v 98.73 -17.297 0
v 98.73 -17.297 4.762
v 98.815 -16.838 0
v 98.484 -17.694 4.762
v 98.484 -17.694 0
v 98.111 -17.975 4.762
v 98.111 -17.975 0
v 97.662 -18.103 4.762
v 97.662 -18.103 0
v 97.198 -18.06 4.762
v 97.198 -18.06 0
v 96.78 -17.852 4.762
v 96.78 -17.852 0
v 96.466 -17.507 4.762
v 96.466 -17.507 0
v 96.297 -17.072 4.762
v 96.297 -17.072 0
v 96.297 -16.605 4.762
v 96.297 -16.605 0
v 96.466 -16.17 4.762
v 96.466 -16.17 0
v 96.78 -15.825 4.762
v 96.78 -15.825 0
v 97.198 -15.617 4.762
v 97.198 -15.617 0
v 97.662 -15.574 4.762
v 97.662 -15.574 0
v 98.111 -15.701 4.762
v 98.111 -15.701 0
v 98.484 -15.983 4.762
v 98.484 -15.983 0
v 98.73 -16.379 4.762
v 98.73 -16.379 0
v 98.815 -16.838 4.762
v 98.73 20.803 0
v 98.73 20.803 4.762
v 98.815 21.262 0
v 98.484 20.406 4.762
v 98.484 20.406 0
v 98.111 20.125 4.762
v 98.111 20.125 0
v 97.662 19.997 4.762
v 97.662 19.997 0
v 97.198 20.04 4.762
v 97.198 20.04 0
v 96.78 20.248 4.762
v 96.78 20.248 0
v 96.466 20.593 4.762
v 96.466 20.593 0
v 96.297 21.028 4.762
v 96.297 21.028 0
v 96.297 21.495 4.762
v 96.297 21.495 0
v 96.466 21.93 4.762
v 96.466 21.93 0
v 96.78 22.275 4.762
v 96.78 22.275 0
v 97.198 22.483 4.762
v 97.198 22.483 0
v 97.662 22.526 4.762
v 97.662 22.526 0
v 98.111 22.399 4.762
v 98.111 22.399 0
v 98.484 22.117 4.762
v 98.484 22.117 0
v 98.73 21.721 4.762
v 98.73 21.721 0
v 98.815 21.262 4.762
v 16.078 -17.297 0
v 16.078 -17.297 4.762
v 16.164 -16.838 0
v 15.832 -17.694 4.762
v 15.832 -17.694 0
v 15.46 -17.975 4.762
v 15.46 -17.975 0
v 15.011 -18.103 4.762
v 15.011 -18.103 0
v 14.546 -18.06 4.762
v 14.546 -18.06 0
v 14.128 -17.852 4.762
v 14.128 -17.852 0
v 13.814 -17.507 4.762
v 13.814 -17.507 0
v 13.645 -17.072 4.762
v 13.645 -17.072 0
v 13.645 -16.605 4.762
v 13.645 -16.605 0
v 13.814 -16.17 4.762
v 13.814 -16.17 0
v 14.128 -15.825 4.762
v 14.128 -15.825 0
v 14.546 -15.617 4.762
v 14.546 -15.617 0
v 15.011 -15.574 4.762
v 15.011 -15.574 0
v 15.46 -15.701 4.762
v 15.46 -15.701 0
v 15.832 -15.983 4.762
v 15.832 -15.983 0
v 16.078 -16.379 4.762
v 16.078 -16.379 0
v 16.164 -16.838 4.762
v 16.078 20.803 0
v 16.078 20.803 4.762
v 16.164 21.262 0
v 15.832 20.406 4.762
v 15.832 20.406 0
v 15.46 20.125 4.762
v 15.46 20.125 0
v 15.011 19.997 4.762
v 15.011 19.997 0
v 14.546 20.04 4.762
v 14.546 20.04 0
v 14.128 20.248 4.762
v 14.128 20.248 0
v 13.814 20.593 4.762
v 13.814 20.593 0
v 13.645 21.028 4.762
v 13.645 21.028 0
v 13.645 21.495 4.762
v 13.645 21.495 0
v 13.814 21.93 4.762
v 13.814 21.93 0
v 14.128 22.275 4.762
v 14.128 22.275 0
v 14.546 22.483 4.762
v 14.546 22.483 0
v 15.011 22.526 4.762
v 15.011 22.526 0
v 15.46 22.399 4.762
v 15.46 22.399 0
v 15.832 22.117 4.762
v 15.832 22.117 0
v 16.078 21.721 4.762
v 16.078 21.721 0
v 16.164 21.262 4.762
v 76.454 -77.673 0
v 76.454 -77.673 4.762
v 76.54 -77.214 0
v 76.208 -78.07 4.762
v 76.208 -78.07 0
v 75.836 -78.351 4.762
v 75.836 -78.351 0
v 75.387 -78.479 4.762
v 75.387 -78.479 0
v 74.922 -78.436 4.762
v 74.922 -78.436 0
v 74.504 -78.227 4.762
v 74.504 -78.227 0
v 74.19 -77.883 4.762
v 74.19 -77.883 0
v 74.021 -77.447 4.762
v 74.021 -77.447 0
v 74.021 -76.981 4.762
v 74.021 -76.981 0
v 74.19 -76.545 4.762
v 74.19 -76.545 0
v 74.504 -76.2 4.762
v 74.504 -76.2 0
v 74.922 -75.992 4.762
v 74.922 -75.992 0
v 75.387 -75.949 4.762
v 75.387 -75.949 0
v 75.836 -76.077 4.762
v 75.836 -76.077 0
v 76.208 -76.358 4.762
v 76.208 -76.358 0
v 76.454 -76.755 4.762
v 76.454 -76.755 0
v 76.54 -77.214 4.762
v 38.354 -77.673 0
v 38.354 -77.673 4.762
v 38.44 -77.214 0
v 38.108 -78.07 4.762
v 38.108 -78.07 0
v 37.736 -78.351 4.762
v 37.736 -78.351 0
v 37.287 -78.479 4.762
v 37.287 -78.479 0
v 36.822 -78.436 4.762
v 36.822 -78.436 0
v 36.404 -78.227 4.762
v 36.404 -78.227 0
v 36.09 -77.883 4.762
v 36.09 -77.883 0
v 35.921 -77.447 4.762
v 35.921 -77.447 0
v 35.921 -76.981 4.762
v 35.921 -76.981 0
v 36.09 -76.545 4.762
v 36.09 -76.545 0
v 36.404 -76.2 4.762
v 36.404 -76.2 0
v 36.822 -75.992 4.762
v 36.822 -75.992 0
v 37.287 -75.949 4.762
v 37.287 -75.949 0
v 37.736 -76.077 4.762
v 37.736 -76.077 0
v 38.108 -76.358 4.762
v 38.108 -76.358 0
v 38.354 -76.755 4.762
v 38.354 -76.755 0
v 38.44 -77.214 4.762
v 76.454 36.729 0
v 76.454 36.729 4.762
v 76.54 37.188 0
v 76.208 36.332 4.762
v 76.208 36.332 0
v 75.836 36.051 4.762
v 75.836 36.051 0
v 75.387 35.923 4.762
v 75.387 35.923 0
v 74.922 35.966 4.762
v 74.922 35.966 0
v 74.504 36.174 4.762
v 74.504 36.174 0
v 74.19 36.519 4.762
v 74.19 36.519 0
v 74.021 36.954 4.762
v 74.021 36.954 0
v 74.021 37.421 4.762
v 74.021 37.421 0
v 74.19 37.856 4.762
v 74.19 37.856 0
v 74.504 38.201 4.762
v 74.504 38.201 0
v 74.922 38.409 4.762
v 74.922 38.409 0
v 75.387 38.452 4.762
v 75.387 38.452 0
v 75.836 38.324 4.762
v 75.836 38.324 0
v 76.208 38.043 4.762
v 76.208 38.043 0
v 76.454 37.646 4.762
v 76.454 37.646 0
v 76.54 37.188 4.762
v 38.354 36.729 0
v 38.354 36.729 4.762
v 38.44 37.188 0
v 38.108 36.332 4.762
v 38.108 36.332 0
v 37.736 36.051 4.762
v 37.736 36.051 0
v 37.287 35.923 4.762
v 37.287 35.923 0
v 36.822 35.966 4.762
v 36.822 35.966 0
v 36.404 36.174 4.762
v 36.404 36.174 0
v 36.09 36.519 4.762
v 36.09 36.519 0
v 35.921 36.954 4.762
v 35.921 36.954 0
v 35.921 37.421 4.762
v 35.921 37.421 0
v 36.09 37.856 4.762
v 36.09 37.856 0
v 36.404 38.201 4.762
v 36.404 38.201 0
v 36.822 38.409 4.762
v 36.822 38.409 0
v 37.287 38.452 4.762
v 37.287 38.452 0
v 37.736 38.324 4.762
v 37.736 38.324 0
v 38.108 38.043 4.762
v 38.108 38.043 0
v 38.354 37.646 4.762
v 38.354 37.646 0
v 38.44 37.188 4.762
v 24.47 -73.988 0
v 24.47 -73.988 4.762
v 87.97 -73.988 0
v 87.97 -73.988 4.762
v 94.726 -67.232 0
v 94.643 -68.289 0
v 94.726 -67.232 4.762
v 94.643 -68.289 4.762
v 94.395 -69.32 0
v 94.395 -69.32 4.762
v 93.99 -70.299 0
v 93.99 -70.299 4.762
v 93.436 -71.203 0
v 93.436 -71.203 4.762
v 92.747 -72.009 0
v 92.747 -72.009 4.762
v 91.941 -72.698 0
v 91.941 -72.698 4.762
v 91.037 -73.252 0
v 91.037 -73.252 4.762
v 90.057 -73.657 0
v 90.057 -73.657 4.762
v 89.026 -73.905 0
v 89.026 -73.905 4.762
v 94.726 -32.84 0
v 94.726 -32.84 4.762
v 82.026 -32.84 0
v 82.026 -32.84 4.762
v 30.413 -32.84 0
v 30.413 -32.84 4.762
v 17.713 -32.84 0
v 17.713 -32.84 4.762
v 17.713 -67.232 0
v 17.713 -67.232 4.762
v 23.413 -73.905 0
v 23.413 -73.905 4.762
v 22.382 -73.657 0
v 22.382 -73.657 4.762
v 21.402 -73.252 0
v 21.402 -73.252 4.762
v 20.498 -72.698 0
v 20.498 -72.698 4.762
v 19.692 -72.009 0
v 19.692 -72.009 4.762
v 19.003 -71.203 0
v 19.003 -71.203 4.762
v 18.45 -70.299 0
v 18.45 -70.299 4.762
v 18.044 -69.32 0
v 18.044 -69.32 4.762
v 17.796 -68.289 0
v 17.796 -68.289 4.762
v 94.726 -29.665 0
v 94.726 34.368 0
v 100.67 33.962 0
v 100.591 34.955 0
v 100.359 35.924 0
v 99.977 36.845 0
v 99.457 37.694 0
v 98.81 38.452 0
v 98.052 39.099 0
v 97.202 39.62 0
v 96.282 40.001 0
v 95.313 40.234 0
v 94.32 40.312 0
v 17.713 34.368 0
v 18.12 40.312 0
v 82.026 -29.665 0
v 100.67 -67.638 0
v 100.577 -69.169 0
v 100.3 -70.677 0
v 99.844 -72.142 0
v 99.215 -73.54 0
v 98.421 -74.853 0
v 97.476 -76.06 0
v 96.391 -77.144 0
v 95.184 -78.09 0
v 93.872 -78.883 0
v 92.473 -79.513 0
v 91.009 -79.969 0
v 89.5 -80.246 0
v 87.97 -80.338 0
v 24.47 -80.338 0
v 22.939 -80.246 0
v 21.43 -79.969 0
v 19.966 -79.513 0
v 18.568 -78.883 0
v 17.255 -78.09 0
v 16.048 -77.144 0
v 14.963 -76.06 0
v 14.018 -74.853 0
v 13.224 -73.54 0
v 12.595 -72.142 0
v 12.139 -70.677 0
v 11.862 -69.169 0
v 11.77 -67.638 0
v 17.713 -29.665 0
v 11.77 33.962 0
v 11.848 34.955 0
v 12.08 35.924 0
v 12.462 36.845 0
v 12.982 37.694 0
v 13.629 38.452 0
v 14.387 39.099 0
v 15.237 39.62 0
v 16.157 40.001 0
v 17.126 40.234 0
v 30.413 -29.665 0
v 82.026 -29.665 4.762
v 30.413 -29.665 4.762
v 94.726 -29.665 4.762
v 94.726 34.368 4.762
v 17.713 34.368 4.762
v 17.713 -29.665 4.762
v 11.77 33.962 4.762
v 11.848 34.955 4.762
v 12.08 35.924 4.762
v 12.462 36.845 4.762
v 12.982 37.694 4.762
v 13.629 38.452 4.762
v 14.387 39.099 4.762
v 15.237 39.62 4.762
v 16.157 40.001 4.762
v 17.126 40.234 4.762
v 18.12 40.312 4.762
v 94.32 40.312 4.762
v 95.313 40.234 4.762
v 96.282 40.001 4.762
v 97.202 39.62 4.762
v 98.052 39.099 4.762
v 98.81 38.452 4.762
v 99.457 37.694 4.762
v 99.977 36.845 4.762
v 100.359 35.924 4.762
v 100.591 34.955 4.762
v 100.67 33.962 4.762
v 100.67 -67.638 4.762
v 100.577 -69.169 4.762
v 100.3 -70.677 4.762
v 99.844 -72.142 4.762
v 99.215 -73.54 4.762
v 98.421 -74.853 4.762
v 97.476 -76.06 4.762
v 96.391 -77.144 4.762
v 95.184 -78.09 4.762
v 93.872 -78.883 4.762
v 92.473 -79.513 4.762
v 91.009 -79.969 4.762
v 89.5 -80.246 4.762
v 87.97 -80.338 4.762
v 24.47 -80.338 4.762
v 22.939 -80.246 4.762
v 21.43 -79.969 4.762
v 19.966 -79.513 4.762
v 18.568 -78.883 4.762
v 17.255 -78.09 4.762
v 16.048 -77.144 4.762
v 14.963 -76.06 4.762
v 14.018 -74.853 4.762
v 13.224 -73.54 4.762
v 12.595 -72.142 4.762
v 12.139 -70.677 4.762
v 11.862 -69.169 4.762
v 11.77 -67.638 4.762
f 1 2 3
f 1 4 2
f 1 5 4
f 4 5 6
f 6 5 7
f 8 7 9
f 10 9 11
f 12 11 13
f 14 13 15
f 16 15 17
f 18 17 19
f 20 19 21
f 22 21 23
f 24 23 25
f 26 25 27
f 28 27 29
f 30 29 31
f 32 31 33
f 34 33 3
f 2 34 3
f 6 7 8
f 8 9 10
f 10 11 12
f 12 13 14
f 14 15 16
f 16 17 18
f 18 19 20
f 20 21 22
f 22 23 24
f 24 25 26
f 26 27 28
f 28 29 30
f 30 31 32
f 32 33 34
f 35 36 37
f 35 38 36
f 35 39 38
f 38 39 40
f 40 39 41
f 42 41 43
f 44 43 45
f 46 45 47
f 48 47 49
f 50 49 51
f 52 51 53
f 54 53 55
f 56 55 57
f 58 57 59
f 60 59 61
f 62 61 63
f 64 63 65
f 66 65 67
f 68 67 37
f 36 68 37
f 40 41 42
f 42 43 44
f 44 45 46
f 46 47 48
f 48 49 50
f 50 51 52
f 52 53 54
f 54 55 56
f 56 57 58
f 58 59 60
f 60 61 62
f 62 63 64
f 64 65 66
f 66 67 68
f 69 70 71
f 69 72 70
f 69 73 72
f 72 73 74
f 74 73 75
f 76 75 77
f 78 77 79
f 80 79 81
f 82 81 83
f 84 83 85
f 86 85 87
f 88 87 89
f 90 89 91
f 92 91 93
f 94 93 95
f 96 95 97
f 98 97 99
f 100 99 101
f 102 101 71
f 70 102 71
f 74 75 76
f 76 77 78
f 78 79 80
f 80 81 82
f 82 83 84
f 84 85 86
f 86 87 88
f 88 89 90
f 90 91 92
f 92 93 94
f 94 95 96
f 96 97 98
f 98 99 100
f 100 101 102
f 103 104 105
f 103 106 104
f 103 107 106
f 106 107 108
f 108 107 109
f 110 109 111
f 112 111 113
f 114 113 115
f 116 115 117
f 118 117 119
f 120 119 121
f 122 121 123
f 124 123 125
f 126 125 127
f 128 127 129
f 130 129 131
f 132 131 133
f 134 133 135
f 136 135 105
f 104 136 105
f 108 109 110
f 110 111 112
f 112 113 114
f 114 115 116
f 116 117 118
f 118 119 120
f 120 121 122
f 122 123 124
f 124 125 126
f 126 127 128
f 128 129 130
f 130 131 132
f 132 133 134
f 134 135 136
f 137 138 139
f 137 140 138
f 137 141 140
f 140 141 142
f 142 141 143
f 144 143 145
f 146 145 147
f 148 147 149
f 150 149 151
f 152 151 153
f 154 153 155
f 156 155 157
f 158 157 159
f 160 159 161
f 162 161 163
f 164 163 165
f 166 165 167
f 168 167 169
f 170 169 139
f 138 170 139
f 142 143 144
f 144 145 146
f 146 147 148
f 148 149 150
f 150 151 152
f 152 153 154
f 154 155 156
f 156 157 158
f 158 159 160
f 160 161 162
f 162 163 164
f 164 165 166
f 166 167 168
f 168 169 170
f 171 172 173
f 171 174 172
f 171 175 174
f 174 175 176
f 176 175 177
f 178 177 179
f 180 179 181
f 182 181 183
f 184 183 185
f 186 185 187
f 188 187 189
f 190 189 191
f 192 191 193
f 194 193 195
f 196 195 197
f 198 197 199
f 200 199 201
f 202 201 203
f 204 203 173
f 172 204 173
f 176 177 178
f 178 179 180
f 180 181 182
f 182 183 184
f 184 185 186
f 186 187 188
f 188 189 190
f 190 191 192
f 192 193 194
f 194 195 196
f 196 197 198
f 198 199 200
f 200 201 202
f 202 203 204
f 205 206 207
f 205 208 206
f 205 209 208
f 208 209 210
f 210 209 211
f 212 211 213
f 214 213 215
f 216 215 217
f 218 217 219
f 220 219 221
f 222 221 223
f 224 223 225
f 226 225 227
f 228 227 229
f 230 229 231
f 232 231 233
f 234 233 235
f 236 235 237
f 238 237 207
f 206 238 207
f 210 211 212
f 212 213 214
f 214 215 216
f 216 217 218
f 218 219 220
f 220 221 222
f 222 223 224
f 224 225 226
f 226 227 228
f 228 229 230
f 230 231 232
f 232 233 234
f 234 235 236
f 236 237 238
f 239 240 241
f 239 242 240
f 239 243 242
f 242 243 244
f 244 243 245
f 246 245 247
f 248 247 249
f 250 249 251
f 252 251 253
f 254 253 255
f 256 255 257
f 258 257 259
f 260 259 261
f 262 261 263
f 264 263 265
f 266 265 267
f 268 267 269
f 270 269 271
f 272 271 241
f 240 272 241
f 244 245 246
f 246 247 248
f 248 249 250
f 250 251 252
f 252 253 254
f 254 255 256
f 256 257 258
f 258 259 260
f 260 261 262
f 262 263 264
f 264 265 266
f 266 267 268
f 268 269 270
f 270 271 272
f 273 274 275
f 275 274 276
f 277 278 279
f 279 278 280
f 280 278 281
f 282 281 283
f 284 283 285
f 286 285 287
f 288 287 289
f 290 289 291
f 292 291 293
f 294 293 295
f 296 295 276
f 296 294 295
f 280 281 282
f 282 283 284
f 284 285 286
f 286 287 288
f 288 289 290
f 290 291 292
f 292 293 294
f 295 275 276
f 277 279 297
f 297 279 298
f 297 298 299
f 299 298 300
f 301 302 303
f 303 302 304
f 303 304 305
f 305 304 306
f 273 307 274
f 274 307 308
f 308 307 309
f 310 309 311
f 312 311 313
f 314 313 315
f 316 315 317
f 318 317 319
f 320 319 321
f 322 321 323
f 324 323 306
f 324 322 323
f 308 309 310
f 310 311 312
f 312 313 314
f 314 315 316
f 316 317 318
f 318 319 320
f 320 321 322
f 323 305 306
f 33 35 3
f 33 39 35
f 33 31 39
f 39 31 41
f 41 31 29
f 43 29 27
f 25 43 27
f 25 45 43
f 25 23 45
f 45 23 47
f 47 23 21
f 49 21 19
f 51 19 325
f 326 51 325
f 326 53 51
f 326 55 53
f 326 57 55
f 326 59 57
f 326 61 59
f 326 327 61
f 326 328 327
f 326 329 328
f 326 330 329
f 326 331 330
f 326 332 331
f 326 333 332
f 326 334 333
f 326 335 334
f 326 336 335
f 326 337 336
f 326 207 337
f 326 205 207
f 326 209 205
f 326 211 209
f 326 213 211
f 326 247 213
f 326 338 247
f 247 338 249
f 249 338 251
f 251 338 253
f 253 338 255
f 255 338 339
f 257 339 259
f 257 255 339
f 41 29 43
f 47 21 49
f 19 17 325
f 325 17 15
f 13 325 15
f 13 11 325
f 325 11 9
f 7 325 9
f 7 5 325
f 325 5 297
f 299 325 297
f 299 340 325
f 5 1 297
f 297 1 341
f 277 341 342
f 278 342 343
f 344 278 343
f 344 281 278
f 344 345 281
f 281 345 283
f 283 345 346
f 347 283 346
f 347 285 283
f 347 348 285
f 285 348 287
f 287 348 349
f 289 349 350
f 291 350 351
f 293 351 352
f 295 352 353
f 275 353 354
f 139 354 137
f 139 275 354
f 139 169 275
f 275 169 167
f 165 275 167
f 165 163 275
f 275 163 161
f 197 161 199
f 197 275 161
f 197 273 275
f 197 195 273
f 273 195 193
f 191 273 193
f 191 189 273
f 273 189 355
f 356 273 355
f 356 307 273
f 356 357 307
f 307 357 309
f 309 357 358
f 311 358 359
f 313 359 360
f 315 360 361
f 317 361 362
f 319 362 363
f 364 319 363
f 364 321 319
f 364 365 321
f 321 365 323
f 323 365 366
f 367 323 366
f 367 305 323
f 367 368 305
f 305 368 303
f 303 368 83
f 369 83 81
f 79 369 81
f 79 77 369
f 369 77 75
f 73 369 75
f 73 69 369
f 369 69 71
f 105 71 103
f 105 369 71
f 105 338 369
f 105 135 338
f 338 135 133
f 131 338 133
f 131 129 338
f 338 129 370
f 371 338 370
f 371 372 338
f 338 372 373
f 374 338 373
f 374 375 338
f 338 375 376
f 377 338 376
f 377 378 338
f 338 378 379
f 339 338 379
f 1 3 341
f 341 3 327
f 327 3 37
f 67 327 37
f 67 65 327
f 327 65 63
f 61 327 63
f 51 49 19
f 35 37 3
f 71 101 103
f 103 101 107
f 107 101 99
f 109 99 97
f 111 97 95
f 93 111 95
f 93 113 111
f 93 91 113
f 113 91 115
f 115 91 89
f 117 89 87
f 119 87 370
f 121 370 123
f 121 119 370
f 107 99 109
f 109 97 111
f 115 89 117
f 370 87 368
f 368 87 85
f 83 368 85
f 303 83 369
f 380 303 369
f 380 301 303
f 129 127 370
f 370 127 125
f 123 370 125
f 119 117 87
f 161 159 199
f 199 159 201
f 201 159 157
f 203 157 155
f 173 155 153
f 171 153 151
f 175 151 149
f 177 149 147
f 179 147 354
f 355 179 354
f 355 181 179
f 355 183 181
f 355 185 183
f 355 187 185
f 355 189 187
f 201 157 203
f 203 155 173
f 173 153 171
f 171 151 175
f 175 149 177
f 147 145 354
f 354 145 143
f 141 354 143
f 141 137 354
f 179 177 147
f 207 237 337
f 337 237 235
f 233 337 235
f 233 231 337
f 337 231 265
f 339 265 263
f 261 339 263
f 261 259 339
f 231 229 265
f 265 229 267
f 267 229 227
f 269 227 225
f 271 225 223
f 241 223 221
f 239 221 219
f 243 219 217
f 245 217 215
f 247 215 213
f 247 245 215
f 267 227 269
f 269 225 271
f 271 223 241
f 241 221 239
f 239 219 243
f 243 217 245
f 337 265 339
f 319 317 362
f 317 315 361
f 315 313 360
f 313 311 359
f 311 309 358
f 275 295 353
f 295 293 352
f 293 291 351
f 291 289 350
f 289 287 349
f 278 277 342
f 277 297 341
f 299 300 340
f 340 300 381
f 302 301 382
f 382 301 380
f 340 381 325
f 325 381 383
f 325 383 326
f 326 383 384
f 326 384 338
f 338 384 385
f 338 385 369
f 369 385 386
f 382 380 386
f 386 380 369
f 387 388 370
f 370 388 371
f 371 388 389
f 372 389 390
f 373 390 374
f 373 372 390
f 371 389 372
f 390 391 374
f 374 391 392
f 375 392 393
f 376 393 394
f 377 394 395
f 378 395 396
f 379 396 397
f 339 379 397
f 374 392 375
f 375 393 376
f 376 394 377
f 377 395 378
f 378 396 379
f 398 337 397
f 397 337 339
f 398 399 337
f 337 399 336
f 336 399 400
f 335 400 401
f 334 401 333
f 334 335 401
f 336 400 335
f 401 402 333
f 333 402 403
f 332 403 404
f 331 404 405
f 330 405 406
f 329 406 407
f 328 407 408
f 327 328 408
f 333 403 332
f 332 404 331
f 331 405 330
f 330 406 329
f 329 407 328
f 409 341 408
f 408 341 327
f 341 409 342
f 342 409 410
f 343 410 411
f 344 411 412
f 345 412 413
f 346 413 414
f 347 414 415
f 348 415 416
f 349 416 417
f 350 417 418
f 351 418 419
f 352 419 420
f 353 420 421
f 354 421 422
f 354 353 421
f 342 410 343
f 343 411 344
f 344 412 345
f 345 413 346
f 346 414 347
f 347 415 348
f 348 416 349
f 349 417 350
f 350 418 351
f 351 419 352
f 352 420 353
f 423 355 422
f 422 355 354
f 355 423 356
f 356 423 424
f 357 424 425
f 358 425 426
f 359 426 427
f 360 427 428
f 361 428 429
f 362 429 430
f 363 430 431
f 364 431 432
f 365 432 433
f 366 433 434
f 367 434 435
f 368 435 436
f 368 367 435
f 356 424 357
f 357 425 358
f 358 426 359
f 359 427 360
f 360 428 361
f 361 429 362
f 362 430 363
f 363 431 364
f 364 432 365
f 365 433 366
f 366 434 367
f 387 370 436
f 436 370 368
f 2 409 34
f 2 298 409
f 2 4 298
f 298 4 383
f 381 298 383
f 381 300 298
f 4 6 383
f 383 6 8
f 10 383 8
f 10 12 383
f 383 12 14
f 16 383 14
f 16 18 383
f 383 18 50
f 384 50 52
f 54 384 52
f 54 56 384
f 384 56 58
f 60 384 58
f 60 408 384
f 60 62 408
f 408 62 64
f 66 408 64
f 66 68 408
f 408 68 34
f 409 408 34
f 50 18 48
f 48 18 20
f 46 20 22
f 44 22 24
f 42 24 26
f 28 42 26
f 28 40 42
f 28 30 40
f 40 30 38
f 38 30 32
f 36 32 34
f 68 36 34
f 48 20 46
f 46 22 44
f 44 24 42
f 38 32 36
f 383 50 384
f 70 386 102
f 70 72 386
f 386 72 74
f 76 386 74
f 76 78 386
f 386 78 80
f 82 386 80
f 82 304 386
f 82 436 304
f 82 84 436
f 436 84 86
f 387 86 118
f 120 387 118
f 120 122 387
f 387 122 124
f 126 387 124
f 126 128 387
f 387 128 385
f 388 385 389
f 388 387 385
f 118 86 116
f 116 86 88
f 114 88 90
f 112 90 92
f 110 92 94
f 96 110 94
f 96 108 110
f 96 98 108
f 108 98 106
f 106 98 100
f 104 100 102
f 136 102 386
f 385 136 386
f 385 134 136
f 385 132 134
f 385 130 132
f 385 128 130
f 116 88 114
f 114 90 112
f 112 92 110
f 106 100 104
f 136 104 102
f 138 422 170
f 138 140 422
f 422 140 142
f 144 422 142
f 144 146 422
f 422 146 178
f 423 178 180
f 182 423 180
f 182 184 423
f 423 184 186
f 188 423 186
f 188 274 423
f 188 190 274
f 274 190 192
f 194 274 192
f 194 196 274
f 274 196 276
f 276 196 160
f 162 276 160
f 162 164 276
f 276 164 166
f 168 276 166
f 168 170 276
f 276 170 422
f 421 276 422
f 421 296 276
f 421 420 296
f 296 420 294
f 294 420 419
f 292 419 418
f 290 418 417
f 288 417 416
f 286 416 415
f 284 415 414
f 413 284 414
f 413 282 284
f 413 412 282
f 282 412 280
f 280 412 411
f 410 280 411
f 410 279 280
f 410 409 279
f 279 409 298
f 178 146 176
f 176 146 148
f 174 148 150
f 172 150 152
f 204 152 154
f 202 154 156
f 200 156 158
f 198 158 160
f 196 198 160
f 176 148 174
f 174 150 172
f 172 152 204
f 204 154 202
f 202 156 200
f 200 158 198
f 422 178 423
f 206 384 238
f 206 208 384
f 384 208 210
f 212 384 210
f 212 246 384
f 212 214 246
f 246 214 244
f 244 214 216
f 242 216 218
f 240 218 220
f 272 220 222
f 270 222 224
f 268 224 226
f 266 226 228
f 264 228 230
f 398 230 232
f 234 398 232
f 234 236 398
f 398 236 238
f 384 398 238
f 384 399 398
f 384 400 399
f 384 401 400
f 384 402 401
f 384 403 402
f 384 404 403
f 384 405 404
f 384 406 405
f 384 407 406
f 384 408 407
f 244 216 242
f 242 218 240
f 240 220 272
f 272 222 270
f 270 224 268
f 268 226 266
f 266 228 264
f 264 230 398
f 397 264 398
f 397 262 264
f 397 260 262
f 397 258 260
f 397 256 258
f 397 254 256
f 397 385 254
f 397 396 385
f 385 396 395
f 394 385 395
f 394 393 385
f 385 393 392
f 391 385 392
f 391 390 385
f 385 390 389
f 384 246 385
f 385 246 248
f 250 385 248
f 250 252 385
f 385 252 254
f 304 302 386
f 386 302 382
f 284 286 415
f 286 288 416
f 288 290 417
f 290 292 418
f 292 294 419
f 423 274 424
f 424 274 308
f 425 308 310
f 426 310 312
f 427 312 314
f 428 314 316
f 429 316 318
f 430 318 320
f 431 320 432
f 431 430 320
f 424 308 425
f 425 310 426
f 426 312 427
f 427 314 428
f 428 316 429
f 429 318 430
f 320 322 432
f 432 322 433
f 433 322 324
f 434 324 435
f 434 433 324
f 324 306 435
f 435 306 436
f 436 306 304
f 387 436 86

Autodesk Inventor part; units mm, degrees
ref_plane "YZ Plane" through (0, 0, 0) normal (1, 0, 0) x (0, 1, 0)
ref_plane "XZ Plane" through (0, 0, 0) normal (0, 1, 0) x (-1, 0, 0)
ref_plane "XY Plane" through (0, 0, 0) normal (0, 0, 1) x (1, 0, 0)
sketch "Sketch1" plane through (0, 0, 0) normal (0, 0, 1) x (1, 0, 0)
  line L0 (11.7695, 33.9618) -> (11.7695, -67.6382)
  line L1 (100.6695, 33.9618) -> (100.6695, -67.6382)
  line L2 (18.1195, 40.3118) -> (94.3195, 40.3118)
  line L3 (24.4695, -80.3382) -> (87.9695, -80.3382)
  arc A0 (11.7695, -67.6382) -> (24.4695, -80.3382) centre (24.4695, -67.6382) ccw
  arc A1 (87.9695, -80.3382) -> (100.6695, -67.6382) centre (87.9695, -67.6382) ccw
  arc A2 (100.6695, 33.9618) -> (94.3195, 40.3118) centre (94.3195, 33.9618) ccw
  arc A3 (18.1195, 40.3118) -> (11.7695, 33.9618) centre (18.1195, 33.9618) ccw
  point P0 (0, 0)
  dimension "d0" = 12.7
  dimension "d1" = 6.35
  dimension "d2" = 120.65
  dimension "d3" = 88.9
extrude "Extrusion1" add sketch "Sketch1" along normal blind 4.7625
sketch "Sketch2" plane through (0, 0, 4.7625) normal (0, 0, 1) x (1, 0, 0)
  line L0 (11.7695, -67.6382) -> (11.7695, 33.9618) projected
  line L1 (100.6695, 33.9618) -> (100.6695, -67.6382) projected
  line L2 (18.1195, 40.3118) -> (94.3195, 40.3118) projected
  line L3 (17.7131, 34.3682) -> (94.7259, 34.3682)
  line L4 (94.7259, 34.3682) -> (94.7259, -29.6652)
  line L5 (94.7259, -29.6652) -> (17.7131, -29.6652)
  line L6 (17.7131, -29.6652) -> (17.7131, 34.3682)
  point P0 (0, 0)
  dimension "d6" = 5.9436
  dimension "d7" = 5.9436
  dimension "d8" = 5.9436
  dimension "d9" = 64.0334
  dimension "d54" = 77.0128
extrude "Extrusion2" cut sketch "Sketch2" against normal through all
sketch "Sketch3" plane through (0, 0, 4.7625) normal (0, 0, 1) x (1, 0, 0)
  line L0 (17.7131, -29.6652) -> (17.7131, 34.3682) projected
  line L1 (94.7259, 34.3682) -> (94.7259, -29.6652) projected
  line L2 (94.7259, -29.6652) -> (17.7131, -29.6652) projected
  line L3 (30.4131, -29.6652) -> (30.4131, -34.7452)
  line L4 (30.4131, -34.7452) -> (82.0259, -34.7452)
  line L5 (82.0259, -34.7452) -> (82.0259, -29.6652)
  point P0 (0, 0)
  dimension "d13" = 12.7
  dimension "d14" = 12.7
  dimension "d15" = 5.08
extrude "Extrusion3" cut sketch "Sketch3" against normal through all
sketch "Sketch4" plane through (0, 0, 4.7625) normal (0, 0, 1) x (1, 0, 0)
  line L0 (17.7131, -29.6652) -> (17.7131, 34.3682) projected
  line L1 (94.7259, 34.3682) -> (94.7259, -29.6652) projected
  line L2 (82.0259, -34.7452) -> (30.4131, -34.7452) projected
  arc A0 (11.7695, -67.6382) -> (24.4695, -80.3382) centre (24.4695, -67.6382) ccw projected
  line L3 (87.9695, -80.3382) -> (24.4695, -80.3382) projected
  arc A1 (87.9695, -80.3382) -> (100.6695, -67.6382) centre (87.9695, -67.6382) ccw projected
  line L4 (24.4695, -73.9882) -> (87.9695, -73.9882)
  line L5 (17.7131, -32.8402) -> (17.7131, -67.2318)
  line L6 (94.7259, -32.8402) -> (94.7259, -67.2318)
  arc A2 (17.7131, -67.2318) -> (24.4695, -73.9882) centre (24.4695, -67.2318) ccw
  arc A3 (87.9695, -73.9882) -> (94.7259, -67.2318) centre (87.9695, -67.2318) ccw
  line L7 (30.4131, -34.7452) -> (30.4131, -29.6652) projected
  line L8 (30.4131, -29.6652) -> (17.7131, -29.6652) projected
  line L9 (82.0259, -29.6652) -> (82.0259, -34.7452) projected
  line L10 (30.4131, -32.8402) -> (17.7131, -32.8402)
  line L11 (82.0259, -32.8402) -> (94.7259, -32.8402)
  point P0 (0, 0)
  dimension "d18" = 6.35
  dimension "d21" = 3.175
extrude "Extrusion4" cut sketch "Sketch4" against normal through all
sketch "Sketch6" plane through (0, 0, 4.7625) normal (0, 0, 1) x (1, 0, 0)
  line L0 (87.9695, -80.3382) -> (24.4695, -80.3382) projected
  circle A0 centre (37.1695, 37.1876) radius 1.27
  circle A1 centre (75.2695, 37.1876) radius 1.27
  circle A2 centre (37.1695, -77.214) radius 1.27
  circle A3 centre (75.2695, -77.214) radius 1.27
  circle A4 centre (14.8937, 21.2618) radius 1.27
  circle A5 centre (14.8937, -16.8382) radius 1.27
  circle A6 centre (97.5453, 21.2618) radius 1.27
  circle A7 centre (97.5453, -16.8382) radius 1.27
  line L1 (18.1195, 40.3118) -> (94.3195, 40.3118) projected
  line L2 (11.7695, -67.6382) -> (11.7695, 33.9618) projected
  line L3 (100.6695, 33.9618) -> (100.6695, -67.6382) projected
  point P0 (0, 0)
  dimension "d35" = 3.1242
  dimension "d36" = 3.1242
  dimension "d37" = 3.1242
  dimension "d38" = 3.1242
  dimension "d39" = 2.54
  dimension "d40" = 25.4
  dimension "d41" = 19.05
  dimension "d42" = 25.4
  dimension "d43" = 38.1
extrude "Extrusion5" cut sketch "Sketch6" against normal through all
sketch "Sketch7" plane through (0, 0, 4.7625) normal (0, 0, 1) x (1, 0, 0)
  circle A0 centre (97.5453, -16.8382) radius 1.27 projected
  circle A1 centre (97.5453, 21.2618) radius 1.27 projected
  circle A2 centre (14.8937, -16.8382) radius 1.27 projected
  circle A3 centre (14.8937, 21.2618) radius 1.27 projected
  circle A4 centre (75.2695, -77.214) radius 1.27 projected
  circle A5 centre (37.1695, -77.214) radius 1.27 projected
  circle A6 centre (75.2695, 37.1876) radius 1.27 projected
  circle A7 centre (37.1695, 37.1876) radius 1.27 projected
  line L0 (17.7131, -32.8402) -> (30.4131, -32.8402) projected
  line L1 (30.4131, -32.8402) -> (30.4131, -29.6652) projected
  line L2 (30.4131, -29.6652) -> (17.7131, -29.6652) projected
  line L3 (17.7131, -29.6652) -> (17.7131, 34.3682) projected
  line L4 (17.7131, 34.3682) -> (94.7259, 34.3682) projected
  line L5 (94.7259, 34.3682) -> (94.7259, -29.6652) projected
  line L6 (94.7259, -29.6652) -> (82.0259, -29.6652) projected
  line L7 (82.0259, -29.6652) -> (82.0259, -32.8402) projected
  line L8 (82.0259, -32.8402) -> (94.7259, -32.8402) projected
  line L9 (94.7259, -32.8402) -> (94.7259, -67.2318) projected
  arc A8 (87.9695, -73.9882) -> (94.7259, -67.2318) centre (87.9695, -67.2318) ccw projected
  line L10 (87.9695, -73.9882) -> (24.4695, -73.9882) projected
  arc A9 (17.7131, -67.2318) -> (24.4695, -73.9882) centre (24.4695, -67.2318) ccw projected
  line L11 (17.7131, -67.2318) -> (17.7131, -32.8402) projected
  arc A10 (18.1195, 40.3118) -> (11.7695, 33.9618) centre (18.1195, 33.9618) ccw projected
  line L12 (11.7695, -67.6382) -> (11.7695, 33.9618) projected
  arc A11 (11.7695, -67.6382) -> (24.4695, -80.3382) centre (24.4695, -67.6382) ccw projected
  line L13 (87.9695, -80.3382) -> (24.4695, -80.3382) projected
  arc A12 (87.9695, -80.3382) -> (100.6695, -67.6382) centre (87.9695, -67.6382) ccw projected
  line L14 (100.6695, 33.9618) -> (100.6695, -67.6382) projected
  arc A13 (100.6695, 33.9618) -> (94.3195, 40.3118) centre (94.3195, 33.9618) ccw projected
  line L15 (18.1195, 40.3118) -> (94.3195, 40.3118) projected
  line L16 (11.7695, -61.2882) -> (30.8195, -80.3382)
  line L17 (81.6195, -80.3382) -> (100.6695, -61.2882)
  point P0 (0, 0)
  dimension "d46" = 6.35
  dimension "d47" = 5.9436
  dimension "d48" = 82.9564
  dimension "d49" = 13.1064
  dimension "d50" = 12.7
  dimension "d51" = 19.05
  dimension "d52" = 19.05
  dimension "d53" = 69.85
properties part number "lcd_spacer"
